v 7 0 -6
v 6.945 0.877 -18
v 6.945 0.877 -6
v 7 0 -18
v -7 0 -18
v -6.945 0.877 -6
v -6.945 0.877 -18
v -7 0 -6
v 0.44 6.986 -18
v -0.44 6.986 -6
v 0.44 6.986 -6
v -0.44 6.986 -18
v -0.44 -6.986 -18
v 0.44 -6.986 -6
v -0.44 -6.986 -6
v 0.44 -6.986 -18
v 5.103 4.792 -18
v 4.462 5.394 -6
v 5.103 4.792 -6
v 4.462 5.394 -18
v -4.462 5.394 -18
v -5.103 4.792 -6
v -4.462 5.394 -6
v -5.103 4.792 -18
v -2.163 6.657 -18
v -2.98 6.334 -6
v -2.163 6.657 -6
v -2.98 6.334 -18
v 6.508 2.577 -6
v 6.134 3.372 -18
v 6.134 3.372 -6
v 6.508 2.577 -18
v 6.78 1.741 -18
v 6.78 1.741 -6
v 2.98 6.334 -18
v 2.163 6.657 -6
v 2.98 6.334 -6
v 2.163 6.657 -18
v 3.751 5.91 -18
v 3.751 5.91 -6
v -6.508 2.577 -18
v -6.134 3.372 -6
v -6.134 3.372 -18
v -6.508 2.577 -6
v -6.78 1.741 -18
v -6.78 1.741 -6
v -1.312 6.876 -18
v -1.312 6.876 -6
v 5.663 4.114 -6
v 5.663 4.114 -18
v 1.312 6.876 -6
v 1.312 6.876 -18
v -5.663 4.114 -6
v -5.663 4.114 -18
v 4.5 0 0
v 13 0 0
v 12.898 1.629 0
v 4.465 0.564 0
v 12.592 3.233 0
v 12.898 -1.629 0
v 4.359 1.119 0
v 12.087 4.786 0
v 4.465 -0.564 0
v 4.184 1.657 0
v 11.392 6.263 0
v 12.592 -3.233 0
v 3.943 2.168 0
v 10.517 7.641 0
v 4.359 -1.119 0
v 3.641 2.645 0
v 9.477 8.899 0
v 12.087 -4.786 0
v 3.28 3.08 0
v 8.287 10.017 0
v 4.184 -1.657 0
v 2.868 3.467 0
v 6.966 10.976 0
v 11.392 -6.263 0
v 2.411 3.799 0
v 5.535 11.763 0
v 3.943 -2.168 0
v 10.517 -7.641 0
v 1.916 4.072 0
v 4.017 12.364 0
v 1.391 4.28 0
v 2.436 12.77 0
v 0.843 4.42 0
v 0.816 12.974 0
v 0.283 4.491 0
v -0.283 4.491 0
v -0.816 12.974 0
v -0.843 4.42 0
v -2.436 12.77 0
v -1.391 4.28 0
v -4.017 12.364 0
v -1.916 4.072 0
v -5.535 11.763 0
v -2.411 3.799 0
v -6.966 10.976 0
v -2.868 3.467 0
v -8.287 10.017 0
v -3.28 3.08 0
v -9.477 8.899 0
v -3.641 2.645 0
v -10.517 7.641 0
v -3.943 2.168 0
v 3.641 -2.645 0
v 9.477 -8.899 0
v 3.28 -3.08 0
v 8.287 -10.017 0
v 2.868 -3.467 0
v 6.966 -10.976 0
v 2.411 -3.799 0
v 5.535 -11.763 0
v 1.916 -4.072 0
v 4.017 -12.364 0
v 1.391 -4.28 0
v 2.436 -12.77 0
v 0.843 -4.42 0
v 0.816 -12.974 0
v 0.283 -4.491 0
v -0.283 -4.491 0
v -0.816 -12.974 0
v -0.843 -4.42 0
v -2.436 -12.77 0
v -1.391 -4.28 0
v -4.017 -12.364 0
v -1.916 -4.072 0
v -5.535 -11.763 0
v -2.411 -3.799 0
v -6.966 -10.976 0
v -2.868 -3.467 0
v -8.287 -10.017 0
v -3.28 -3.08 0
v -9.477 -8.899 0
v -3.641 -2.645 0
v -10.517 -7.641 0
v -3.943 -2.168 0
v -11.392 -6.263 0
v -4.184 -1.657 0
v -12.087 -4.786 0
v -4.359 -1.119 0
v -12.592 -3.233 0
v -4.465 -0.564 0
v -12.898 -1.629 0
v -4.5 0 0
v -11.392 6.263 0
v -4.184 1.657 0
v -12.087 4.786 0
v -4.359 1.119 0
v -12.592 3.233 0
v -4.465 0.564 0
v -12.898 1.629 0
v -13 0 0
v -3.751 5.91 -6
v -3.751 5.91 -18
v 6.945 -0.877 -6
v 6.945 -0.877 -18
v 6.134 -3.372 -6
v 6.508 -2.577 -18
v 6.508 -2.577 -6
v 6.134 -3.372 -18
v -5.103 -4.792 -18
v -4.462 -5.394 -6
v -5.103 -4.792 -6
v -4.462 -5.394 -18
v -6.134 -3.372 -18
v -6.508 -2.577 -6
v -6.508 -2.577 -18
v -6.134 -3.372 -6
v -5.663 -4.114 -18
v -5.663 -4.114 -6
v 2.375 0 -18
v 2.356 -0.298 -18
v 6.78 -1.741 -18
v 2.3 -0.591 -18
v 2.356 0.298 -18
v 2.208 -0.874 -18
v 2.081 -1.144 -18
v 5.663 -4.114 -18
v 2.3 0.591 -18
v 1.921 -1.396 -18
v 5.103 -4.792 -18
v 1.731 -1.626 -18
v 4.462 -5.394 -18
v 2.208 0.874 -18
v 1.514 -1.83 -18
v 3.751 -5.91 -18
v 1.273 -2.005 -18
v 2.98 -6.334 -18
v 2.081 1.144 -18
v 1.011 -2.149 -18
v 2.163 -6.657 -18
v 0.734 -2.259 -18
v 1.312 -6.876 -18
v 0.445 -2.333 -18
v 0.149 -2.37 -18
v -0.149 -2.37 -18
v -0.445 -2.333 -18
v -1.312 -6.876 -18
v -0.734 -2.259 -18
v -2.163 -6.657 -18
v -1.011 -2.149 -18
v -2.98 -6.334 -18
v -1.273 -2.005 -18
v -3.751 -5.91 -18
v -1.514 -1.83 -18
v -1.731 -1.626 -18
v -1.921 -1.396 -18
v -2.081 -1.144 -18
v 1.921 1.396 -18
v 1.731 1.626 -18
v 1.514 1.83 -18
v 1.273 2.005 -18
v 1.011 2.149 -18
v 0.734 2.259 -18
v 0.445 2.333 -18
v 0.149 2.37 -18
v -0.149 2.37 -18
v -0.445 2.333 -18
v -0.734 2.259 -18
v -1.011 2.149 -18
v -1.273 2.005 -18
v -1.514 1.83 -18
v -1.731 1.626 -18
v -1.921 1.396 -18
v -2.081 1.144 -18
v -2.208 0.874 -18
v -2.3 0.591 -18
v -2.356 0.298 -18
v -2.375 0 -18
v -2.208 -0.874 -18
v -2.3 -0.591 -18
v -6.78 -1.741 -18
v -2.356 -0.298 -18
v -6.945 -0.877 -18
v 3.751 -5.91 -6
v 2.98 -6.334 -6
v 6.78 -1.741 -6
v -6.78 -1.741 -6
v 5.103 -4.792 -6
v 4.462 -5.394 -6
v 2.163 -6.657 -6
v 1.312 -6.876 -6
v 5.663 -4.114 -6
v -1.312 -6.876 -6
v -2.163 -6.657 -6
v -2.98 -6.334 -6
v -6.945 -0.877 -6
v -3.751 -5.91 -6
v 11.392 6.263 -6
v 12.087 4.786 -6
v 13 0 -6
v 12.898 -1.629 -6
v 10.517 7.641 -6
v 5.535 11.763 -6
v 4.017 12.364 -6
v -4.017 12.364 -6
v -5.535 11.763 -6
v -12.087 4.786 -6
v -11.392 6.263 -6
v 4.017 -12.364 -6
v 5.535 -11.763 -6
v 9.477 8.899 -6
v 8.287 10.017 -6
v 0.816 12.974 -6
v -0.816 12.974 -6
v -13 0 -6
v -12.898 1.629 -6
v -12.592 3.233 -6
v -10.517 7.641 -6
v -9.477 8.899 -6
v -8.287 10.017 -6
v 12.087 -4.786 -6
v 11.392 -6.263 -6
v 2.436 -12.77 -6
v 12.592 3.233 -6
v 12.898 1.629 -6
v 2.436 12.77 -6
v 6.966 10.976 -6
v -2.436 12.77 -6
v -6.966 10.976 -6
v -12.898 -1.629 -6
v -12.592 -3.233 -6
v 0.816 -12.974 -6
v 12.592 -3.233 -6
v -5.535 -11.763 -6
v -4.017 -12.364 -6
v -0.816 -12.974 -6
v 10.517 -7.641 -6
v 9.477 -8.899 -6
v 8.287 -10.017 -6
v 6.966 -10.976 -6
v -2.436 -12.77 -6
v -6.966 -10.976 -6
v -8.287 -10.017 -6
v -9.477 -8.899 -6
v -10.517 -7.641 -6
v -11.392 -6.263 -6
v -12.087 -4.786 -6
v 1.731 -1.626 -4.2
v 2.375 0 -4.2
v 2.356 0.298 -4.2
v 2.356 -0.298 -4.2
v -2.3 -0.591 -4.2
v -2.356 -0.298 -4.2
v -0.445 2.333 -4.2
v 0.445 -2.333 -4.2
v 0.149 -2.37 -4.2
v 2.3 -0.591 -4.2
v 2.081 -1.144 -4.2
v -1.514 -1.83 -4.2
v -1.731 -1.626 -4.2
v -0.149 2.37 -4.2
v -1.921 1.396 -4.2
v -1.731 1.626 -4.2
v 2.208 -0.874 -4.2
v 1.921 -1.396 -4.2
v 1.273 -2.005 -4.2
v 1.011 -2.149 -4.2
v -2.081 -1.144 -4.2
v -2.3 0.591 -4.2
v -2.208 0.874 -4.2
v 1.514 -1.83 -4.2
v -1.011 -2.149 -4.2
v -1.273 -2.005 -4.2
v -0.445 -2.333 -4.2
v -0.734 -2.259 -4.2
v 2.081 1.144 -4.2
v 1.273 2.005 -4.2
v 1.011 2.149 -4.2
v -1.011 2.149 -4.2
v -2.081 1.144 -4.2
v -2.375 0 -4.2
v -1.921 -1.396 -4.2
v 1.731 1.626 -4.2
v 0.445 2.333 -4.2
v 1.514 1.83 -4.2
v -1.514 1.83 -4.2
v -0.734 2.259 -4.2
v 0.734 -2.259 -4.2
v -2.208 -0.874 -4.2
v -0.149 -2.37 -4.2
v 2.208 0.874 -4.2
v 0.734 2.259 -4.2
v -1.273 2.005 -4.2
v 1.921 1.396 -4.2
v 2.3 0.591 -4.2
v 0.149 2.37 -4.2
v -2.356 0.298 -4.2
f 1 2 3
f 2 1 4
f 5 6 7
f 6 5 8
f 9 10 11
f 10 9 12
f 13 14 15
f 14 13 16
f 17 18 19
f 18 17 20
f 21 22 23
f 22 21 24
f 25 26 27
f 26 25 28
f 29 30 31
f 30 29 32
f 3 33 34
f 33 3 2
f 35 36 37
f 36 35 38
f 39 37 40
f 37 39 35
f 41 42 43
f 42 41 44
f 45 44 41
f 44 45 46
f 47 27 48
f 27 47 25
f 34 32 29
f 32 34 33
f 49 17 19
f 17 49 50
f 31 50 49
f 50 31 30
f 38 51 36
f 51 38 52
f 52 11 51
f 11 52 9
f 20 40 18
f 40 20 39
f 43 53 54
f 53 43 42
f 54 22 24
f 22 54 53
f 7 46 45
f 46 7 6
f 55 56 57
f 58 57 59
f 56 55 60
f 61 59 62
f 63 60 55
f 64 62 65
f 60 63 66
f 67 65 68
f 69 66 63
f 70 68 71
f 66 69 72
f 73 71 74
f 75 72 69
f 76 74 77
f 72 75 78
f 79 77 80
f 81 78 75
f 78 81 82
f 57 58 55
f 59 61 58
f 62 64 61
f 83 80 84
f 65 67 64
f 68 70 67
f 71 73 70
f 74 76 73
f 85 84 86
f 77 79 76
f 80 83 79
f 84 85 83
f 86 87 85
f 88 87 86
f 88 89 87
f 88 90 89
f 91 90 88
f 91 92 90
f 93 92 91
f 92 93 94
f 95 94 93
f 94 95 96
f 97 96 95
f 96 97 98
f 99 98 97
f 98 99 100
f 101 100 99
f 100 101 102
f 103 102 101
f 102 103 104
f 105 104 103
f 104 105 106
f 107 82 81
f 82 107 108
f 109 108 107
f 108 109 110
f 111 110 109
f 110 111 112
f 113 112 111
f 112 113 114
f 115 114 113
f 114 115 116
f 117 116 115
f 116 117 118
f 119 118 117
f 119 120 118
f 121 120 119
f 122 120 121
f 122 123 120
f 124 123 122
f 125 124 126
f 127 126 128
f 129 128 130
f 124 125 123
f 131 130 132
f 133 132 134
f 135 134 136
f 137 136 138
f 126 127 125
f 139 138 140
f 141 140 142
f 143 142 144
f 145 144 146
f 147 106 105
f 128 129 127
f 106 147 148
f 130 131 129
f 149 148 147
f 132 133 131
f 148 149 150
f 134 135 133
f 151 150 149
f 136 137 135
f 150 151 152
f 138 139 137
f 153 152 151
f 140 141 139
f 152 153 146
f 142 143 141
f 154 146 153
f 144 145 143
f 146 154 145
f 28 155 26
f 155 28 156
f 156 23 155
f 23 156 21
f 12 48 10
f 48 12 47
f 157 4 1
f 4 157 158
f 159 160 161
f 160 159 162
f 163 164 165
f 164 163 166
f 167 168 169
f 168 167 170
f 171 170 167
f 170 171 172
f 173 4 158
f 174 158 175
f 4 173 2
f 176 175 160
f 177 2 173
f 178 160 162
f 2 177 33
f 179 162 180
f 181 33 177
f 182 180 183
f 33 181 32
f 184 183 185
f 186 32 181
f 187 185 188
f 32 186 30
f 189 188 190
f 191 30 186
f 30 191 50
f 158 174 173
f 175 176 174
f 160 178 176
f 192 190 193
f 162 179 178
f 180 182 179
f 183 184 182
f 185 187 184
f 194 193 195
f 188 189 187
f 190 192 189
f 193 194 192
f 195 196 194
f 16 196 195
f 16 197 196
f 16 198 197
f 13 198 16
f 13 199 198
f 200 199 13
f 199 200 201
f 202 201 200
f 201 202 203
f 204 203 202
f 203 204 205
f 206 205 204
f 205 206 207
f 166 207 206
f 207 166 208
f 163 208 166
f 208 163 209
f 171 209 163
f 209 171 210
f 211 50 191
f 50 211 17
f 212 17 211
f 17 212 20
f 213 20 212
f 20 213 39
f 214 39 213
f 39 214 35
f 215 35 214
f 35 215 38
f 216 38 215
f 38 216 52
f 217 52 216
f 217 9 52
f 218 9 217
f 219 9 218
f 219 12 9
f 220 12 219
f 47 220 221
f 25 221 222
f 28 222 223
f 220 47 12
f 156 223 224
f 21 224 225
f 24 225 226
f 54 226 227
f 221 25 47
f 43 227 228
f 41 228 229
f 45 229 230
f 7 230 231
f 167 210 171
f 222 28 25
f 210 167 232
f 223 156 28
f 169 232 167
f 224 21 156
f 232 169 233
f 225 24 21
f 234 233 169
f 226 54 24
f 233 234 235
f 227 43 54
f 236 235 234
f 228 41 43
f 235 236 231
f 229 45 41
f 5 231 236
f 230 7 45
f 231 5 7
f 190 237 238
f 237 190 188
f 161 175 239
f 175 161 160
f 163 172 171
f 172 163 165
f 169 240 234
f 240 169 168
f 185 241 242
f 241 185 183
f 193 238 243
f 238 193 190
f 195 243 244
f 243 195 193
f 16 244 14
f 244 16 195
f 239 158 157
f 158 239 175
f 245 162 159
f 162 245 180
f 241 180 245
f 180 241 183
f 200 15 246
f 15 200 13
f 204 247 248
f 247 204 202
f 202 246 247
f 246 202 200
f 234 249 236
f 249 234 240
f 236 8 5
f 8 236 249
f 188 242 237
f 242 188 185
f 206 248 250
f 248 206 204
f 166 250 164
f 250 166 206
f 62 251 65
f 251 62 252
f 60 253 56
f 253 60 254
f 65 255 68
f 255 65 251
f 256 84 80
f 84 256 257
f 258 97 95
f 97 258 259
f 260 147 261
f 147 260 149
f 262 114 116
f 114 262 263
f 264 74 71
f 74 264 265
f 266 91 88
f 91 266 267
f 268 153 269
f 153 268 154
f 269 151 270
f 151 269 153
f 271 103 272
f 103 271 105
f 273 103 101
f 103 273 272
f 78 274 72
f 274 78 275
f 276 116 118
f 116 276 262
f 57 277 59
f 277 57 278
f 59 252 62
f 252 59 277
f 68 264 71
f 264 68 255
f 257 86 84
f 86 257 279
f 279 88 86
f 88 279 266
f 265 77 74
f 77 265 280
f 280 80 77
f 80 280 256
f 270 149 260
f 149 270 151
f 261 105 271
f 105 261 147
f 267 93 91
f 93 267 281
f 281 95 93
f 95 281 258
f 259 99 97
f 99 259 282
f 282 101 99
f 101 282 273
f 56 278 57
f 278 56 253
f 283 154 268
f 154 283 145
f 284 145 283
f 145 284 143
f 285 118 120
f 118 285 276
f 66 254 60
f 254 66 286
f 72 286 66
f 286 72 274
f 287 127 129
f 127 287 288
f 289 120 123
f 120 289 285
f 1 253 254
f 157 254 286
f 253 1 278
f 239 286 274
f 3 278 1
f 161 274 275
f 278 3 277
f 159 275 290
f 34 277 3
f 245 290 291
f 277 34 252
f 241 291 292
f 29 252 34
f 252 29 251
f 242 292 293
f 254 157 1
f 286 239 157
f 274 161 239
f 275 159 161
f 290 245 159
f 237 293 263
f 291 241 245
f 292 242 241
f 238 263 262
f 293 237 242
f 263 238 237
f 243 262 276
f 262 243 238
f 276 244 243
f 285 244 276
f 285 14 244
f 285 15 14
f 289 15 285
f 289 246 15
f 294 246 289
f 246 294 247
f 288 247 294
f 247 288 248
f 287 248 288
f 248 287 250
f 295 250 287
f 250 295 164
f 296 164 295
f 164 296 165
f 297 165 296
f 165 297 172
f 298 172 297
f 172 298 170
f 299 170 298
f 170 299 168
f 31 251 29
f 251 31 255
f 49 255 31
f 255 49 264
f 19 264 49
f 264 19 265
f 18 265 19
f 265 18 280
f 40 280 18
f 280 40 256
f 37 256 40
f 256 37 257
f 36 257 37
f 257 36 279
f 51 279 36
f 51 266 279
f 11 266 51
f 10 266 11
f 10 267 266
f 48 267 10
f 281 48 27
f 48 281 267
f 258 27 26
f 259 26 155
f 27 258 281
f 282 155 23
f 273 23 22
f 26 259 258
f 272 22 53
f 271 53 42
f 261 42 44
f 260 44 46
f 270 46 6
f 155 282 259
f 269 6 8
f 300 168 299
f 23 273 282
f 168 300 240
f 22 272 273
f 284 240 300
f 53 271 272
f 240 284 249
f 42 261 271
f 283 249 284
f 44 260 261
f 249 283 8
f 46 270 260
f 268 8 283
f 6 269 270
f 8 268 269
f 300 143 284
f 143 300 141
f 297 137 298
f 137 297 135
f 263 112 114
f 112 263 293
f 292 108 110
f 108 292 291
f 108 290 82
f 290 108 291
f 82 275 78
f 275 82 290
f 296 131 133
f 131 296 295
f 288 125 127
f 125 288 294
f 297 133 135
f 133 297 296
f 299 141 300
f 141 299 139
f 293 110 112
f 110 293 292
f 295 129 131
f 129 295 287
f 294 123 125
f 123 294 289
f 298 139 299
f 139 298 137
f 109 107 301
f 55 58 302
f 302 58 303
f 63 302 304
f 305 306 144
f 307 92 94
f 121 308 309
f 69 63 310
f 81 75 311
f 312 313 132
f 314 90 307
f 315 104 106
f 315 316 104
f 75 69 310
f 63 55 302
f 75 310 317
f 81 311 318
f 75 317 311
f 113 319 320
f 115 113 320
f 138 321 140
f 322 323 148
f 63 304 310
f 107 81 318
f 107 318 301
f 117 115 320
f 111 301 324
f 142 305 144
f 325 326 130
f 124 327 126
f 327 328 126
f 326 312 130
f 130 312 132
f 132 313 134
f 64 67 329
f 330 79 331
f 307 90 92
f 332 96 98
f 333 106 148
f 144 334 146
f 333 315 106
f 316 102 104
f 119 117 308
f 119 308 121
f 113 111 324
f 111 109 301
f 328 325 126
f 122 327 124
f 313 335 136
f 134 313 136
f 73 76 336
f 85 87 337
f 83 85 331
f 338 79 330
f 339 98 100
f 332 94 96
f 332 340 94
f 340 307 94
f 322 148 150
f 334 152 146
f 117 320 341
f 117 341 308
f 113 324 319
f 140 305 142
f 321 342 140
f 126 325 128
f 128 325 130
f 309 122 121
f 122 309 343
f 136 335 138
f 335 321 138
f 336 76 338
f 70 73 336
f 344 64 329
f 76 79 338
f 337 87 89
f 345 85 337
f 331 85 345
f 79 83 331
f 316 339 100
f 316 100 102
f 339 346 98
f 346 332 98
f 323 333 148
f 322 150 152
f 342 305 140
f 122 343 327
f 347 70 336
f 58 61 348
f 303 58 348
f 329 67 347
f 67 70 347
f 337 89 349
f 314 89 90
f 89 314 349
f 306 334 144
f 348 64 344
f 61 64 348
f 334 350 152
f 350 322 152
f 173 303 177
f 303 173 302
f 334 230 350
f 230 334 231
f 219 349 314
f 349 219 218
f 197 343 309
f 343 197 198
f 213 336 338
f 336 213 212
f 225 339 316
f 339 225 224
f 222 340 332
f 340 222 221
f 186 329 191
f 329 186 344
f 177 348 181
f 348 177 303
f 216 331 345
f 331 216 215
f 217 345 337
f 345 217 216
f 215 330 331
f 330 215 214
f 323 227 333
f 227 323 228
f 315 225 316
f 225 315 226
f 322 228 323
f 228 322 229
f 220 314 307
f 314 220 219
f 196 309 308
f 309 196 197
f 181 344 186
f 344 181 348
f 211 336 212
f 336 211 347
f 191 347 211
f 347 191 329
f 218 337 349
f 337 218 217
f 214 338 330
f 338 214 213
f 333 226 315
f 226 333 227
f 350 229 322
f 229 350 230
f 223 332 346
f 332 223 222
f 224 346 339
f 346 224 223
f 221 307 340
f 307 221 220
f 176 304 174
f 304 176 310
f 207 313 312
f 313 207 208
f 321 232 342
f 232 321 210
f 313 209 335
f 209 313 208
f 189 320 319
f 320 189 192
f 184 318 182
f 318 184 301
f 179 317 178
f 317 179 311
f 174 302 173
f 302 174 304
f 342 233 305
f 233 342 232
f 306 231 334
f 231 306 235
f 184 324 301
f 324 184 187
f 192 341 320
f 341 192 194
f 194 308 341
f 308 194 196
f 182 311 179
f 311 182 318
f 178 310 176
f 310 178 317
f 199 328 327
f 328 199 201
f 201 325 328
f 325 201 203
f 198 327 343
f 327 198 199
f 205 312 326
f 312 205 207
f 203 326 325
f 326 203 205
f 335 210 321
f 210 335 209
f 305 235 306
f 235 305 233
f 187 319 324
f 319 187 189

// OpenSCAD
$fn = 50;


difference() {
	union() {
		translate(v = [0, 0, -18.0000000000]) {
			cylinder(h = 18, r = 7.0000000000);
		}
		translate(v = [0, 0, -6.0000000000]) {
			cylinder(h = 6, r = 13.0000000000);
		}
	}
	union() {
		translate(v = [0, 0, 0]) {
			rotate(a = [0, 0, 0]) {
				difference() {
					union() {
						#translate(v = [0, 0, -18.0000000000]) {
							cylinder(h = 18, r = 2.2500000000);
						}
						#translate(v = [0, 0, -4.2000000000]) {
							cylinder(h = 4.2000000000, r = 7.0000000000, r1 = 2.3750000000, r2 = 4.5000000000);
						}
						#translate(v = [0, 0, -18.0000000000]) {
							cylinder(h = 18, r = 2.3750000000);
						}
						#translate(v = [0, 0, -18.0000000000]) {
							cylinder(h = 18, r = 2.2500000000);
						}
					}
					union();
				}
			}
		}
	}
}
